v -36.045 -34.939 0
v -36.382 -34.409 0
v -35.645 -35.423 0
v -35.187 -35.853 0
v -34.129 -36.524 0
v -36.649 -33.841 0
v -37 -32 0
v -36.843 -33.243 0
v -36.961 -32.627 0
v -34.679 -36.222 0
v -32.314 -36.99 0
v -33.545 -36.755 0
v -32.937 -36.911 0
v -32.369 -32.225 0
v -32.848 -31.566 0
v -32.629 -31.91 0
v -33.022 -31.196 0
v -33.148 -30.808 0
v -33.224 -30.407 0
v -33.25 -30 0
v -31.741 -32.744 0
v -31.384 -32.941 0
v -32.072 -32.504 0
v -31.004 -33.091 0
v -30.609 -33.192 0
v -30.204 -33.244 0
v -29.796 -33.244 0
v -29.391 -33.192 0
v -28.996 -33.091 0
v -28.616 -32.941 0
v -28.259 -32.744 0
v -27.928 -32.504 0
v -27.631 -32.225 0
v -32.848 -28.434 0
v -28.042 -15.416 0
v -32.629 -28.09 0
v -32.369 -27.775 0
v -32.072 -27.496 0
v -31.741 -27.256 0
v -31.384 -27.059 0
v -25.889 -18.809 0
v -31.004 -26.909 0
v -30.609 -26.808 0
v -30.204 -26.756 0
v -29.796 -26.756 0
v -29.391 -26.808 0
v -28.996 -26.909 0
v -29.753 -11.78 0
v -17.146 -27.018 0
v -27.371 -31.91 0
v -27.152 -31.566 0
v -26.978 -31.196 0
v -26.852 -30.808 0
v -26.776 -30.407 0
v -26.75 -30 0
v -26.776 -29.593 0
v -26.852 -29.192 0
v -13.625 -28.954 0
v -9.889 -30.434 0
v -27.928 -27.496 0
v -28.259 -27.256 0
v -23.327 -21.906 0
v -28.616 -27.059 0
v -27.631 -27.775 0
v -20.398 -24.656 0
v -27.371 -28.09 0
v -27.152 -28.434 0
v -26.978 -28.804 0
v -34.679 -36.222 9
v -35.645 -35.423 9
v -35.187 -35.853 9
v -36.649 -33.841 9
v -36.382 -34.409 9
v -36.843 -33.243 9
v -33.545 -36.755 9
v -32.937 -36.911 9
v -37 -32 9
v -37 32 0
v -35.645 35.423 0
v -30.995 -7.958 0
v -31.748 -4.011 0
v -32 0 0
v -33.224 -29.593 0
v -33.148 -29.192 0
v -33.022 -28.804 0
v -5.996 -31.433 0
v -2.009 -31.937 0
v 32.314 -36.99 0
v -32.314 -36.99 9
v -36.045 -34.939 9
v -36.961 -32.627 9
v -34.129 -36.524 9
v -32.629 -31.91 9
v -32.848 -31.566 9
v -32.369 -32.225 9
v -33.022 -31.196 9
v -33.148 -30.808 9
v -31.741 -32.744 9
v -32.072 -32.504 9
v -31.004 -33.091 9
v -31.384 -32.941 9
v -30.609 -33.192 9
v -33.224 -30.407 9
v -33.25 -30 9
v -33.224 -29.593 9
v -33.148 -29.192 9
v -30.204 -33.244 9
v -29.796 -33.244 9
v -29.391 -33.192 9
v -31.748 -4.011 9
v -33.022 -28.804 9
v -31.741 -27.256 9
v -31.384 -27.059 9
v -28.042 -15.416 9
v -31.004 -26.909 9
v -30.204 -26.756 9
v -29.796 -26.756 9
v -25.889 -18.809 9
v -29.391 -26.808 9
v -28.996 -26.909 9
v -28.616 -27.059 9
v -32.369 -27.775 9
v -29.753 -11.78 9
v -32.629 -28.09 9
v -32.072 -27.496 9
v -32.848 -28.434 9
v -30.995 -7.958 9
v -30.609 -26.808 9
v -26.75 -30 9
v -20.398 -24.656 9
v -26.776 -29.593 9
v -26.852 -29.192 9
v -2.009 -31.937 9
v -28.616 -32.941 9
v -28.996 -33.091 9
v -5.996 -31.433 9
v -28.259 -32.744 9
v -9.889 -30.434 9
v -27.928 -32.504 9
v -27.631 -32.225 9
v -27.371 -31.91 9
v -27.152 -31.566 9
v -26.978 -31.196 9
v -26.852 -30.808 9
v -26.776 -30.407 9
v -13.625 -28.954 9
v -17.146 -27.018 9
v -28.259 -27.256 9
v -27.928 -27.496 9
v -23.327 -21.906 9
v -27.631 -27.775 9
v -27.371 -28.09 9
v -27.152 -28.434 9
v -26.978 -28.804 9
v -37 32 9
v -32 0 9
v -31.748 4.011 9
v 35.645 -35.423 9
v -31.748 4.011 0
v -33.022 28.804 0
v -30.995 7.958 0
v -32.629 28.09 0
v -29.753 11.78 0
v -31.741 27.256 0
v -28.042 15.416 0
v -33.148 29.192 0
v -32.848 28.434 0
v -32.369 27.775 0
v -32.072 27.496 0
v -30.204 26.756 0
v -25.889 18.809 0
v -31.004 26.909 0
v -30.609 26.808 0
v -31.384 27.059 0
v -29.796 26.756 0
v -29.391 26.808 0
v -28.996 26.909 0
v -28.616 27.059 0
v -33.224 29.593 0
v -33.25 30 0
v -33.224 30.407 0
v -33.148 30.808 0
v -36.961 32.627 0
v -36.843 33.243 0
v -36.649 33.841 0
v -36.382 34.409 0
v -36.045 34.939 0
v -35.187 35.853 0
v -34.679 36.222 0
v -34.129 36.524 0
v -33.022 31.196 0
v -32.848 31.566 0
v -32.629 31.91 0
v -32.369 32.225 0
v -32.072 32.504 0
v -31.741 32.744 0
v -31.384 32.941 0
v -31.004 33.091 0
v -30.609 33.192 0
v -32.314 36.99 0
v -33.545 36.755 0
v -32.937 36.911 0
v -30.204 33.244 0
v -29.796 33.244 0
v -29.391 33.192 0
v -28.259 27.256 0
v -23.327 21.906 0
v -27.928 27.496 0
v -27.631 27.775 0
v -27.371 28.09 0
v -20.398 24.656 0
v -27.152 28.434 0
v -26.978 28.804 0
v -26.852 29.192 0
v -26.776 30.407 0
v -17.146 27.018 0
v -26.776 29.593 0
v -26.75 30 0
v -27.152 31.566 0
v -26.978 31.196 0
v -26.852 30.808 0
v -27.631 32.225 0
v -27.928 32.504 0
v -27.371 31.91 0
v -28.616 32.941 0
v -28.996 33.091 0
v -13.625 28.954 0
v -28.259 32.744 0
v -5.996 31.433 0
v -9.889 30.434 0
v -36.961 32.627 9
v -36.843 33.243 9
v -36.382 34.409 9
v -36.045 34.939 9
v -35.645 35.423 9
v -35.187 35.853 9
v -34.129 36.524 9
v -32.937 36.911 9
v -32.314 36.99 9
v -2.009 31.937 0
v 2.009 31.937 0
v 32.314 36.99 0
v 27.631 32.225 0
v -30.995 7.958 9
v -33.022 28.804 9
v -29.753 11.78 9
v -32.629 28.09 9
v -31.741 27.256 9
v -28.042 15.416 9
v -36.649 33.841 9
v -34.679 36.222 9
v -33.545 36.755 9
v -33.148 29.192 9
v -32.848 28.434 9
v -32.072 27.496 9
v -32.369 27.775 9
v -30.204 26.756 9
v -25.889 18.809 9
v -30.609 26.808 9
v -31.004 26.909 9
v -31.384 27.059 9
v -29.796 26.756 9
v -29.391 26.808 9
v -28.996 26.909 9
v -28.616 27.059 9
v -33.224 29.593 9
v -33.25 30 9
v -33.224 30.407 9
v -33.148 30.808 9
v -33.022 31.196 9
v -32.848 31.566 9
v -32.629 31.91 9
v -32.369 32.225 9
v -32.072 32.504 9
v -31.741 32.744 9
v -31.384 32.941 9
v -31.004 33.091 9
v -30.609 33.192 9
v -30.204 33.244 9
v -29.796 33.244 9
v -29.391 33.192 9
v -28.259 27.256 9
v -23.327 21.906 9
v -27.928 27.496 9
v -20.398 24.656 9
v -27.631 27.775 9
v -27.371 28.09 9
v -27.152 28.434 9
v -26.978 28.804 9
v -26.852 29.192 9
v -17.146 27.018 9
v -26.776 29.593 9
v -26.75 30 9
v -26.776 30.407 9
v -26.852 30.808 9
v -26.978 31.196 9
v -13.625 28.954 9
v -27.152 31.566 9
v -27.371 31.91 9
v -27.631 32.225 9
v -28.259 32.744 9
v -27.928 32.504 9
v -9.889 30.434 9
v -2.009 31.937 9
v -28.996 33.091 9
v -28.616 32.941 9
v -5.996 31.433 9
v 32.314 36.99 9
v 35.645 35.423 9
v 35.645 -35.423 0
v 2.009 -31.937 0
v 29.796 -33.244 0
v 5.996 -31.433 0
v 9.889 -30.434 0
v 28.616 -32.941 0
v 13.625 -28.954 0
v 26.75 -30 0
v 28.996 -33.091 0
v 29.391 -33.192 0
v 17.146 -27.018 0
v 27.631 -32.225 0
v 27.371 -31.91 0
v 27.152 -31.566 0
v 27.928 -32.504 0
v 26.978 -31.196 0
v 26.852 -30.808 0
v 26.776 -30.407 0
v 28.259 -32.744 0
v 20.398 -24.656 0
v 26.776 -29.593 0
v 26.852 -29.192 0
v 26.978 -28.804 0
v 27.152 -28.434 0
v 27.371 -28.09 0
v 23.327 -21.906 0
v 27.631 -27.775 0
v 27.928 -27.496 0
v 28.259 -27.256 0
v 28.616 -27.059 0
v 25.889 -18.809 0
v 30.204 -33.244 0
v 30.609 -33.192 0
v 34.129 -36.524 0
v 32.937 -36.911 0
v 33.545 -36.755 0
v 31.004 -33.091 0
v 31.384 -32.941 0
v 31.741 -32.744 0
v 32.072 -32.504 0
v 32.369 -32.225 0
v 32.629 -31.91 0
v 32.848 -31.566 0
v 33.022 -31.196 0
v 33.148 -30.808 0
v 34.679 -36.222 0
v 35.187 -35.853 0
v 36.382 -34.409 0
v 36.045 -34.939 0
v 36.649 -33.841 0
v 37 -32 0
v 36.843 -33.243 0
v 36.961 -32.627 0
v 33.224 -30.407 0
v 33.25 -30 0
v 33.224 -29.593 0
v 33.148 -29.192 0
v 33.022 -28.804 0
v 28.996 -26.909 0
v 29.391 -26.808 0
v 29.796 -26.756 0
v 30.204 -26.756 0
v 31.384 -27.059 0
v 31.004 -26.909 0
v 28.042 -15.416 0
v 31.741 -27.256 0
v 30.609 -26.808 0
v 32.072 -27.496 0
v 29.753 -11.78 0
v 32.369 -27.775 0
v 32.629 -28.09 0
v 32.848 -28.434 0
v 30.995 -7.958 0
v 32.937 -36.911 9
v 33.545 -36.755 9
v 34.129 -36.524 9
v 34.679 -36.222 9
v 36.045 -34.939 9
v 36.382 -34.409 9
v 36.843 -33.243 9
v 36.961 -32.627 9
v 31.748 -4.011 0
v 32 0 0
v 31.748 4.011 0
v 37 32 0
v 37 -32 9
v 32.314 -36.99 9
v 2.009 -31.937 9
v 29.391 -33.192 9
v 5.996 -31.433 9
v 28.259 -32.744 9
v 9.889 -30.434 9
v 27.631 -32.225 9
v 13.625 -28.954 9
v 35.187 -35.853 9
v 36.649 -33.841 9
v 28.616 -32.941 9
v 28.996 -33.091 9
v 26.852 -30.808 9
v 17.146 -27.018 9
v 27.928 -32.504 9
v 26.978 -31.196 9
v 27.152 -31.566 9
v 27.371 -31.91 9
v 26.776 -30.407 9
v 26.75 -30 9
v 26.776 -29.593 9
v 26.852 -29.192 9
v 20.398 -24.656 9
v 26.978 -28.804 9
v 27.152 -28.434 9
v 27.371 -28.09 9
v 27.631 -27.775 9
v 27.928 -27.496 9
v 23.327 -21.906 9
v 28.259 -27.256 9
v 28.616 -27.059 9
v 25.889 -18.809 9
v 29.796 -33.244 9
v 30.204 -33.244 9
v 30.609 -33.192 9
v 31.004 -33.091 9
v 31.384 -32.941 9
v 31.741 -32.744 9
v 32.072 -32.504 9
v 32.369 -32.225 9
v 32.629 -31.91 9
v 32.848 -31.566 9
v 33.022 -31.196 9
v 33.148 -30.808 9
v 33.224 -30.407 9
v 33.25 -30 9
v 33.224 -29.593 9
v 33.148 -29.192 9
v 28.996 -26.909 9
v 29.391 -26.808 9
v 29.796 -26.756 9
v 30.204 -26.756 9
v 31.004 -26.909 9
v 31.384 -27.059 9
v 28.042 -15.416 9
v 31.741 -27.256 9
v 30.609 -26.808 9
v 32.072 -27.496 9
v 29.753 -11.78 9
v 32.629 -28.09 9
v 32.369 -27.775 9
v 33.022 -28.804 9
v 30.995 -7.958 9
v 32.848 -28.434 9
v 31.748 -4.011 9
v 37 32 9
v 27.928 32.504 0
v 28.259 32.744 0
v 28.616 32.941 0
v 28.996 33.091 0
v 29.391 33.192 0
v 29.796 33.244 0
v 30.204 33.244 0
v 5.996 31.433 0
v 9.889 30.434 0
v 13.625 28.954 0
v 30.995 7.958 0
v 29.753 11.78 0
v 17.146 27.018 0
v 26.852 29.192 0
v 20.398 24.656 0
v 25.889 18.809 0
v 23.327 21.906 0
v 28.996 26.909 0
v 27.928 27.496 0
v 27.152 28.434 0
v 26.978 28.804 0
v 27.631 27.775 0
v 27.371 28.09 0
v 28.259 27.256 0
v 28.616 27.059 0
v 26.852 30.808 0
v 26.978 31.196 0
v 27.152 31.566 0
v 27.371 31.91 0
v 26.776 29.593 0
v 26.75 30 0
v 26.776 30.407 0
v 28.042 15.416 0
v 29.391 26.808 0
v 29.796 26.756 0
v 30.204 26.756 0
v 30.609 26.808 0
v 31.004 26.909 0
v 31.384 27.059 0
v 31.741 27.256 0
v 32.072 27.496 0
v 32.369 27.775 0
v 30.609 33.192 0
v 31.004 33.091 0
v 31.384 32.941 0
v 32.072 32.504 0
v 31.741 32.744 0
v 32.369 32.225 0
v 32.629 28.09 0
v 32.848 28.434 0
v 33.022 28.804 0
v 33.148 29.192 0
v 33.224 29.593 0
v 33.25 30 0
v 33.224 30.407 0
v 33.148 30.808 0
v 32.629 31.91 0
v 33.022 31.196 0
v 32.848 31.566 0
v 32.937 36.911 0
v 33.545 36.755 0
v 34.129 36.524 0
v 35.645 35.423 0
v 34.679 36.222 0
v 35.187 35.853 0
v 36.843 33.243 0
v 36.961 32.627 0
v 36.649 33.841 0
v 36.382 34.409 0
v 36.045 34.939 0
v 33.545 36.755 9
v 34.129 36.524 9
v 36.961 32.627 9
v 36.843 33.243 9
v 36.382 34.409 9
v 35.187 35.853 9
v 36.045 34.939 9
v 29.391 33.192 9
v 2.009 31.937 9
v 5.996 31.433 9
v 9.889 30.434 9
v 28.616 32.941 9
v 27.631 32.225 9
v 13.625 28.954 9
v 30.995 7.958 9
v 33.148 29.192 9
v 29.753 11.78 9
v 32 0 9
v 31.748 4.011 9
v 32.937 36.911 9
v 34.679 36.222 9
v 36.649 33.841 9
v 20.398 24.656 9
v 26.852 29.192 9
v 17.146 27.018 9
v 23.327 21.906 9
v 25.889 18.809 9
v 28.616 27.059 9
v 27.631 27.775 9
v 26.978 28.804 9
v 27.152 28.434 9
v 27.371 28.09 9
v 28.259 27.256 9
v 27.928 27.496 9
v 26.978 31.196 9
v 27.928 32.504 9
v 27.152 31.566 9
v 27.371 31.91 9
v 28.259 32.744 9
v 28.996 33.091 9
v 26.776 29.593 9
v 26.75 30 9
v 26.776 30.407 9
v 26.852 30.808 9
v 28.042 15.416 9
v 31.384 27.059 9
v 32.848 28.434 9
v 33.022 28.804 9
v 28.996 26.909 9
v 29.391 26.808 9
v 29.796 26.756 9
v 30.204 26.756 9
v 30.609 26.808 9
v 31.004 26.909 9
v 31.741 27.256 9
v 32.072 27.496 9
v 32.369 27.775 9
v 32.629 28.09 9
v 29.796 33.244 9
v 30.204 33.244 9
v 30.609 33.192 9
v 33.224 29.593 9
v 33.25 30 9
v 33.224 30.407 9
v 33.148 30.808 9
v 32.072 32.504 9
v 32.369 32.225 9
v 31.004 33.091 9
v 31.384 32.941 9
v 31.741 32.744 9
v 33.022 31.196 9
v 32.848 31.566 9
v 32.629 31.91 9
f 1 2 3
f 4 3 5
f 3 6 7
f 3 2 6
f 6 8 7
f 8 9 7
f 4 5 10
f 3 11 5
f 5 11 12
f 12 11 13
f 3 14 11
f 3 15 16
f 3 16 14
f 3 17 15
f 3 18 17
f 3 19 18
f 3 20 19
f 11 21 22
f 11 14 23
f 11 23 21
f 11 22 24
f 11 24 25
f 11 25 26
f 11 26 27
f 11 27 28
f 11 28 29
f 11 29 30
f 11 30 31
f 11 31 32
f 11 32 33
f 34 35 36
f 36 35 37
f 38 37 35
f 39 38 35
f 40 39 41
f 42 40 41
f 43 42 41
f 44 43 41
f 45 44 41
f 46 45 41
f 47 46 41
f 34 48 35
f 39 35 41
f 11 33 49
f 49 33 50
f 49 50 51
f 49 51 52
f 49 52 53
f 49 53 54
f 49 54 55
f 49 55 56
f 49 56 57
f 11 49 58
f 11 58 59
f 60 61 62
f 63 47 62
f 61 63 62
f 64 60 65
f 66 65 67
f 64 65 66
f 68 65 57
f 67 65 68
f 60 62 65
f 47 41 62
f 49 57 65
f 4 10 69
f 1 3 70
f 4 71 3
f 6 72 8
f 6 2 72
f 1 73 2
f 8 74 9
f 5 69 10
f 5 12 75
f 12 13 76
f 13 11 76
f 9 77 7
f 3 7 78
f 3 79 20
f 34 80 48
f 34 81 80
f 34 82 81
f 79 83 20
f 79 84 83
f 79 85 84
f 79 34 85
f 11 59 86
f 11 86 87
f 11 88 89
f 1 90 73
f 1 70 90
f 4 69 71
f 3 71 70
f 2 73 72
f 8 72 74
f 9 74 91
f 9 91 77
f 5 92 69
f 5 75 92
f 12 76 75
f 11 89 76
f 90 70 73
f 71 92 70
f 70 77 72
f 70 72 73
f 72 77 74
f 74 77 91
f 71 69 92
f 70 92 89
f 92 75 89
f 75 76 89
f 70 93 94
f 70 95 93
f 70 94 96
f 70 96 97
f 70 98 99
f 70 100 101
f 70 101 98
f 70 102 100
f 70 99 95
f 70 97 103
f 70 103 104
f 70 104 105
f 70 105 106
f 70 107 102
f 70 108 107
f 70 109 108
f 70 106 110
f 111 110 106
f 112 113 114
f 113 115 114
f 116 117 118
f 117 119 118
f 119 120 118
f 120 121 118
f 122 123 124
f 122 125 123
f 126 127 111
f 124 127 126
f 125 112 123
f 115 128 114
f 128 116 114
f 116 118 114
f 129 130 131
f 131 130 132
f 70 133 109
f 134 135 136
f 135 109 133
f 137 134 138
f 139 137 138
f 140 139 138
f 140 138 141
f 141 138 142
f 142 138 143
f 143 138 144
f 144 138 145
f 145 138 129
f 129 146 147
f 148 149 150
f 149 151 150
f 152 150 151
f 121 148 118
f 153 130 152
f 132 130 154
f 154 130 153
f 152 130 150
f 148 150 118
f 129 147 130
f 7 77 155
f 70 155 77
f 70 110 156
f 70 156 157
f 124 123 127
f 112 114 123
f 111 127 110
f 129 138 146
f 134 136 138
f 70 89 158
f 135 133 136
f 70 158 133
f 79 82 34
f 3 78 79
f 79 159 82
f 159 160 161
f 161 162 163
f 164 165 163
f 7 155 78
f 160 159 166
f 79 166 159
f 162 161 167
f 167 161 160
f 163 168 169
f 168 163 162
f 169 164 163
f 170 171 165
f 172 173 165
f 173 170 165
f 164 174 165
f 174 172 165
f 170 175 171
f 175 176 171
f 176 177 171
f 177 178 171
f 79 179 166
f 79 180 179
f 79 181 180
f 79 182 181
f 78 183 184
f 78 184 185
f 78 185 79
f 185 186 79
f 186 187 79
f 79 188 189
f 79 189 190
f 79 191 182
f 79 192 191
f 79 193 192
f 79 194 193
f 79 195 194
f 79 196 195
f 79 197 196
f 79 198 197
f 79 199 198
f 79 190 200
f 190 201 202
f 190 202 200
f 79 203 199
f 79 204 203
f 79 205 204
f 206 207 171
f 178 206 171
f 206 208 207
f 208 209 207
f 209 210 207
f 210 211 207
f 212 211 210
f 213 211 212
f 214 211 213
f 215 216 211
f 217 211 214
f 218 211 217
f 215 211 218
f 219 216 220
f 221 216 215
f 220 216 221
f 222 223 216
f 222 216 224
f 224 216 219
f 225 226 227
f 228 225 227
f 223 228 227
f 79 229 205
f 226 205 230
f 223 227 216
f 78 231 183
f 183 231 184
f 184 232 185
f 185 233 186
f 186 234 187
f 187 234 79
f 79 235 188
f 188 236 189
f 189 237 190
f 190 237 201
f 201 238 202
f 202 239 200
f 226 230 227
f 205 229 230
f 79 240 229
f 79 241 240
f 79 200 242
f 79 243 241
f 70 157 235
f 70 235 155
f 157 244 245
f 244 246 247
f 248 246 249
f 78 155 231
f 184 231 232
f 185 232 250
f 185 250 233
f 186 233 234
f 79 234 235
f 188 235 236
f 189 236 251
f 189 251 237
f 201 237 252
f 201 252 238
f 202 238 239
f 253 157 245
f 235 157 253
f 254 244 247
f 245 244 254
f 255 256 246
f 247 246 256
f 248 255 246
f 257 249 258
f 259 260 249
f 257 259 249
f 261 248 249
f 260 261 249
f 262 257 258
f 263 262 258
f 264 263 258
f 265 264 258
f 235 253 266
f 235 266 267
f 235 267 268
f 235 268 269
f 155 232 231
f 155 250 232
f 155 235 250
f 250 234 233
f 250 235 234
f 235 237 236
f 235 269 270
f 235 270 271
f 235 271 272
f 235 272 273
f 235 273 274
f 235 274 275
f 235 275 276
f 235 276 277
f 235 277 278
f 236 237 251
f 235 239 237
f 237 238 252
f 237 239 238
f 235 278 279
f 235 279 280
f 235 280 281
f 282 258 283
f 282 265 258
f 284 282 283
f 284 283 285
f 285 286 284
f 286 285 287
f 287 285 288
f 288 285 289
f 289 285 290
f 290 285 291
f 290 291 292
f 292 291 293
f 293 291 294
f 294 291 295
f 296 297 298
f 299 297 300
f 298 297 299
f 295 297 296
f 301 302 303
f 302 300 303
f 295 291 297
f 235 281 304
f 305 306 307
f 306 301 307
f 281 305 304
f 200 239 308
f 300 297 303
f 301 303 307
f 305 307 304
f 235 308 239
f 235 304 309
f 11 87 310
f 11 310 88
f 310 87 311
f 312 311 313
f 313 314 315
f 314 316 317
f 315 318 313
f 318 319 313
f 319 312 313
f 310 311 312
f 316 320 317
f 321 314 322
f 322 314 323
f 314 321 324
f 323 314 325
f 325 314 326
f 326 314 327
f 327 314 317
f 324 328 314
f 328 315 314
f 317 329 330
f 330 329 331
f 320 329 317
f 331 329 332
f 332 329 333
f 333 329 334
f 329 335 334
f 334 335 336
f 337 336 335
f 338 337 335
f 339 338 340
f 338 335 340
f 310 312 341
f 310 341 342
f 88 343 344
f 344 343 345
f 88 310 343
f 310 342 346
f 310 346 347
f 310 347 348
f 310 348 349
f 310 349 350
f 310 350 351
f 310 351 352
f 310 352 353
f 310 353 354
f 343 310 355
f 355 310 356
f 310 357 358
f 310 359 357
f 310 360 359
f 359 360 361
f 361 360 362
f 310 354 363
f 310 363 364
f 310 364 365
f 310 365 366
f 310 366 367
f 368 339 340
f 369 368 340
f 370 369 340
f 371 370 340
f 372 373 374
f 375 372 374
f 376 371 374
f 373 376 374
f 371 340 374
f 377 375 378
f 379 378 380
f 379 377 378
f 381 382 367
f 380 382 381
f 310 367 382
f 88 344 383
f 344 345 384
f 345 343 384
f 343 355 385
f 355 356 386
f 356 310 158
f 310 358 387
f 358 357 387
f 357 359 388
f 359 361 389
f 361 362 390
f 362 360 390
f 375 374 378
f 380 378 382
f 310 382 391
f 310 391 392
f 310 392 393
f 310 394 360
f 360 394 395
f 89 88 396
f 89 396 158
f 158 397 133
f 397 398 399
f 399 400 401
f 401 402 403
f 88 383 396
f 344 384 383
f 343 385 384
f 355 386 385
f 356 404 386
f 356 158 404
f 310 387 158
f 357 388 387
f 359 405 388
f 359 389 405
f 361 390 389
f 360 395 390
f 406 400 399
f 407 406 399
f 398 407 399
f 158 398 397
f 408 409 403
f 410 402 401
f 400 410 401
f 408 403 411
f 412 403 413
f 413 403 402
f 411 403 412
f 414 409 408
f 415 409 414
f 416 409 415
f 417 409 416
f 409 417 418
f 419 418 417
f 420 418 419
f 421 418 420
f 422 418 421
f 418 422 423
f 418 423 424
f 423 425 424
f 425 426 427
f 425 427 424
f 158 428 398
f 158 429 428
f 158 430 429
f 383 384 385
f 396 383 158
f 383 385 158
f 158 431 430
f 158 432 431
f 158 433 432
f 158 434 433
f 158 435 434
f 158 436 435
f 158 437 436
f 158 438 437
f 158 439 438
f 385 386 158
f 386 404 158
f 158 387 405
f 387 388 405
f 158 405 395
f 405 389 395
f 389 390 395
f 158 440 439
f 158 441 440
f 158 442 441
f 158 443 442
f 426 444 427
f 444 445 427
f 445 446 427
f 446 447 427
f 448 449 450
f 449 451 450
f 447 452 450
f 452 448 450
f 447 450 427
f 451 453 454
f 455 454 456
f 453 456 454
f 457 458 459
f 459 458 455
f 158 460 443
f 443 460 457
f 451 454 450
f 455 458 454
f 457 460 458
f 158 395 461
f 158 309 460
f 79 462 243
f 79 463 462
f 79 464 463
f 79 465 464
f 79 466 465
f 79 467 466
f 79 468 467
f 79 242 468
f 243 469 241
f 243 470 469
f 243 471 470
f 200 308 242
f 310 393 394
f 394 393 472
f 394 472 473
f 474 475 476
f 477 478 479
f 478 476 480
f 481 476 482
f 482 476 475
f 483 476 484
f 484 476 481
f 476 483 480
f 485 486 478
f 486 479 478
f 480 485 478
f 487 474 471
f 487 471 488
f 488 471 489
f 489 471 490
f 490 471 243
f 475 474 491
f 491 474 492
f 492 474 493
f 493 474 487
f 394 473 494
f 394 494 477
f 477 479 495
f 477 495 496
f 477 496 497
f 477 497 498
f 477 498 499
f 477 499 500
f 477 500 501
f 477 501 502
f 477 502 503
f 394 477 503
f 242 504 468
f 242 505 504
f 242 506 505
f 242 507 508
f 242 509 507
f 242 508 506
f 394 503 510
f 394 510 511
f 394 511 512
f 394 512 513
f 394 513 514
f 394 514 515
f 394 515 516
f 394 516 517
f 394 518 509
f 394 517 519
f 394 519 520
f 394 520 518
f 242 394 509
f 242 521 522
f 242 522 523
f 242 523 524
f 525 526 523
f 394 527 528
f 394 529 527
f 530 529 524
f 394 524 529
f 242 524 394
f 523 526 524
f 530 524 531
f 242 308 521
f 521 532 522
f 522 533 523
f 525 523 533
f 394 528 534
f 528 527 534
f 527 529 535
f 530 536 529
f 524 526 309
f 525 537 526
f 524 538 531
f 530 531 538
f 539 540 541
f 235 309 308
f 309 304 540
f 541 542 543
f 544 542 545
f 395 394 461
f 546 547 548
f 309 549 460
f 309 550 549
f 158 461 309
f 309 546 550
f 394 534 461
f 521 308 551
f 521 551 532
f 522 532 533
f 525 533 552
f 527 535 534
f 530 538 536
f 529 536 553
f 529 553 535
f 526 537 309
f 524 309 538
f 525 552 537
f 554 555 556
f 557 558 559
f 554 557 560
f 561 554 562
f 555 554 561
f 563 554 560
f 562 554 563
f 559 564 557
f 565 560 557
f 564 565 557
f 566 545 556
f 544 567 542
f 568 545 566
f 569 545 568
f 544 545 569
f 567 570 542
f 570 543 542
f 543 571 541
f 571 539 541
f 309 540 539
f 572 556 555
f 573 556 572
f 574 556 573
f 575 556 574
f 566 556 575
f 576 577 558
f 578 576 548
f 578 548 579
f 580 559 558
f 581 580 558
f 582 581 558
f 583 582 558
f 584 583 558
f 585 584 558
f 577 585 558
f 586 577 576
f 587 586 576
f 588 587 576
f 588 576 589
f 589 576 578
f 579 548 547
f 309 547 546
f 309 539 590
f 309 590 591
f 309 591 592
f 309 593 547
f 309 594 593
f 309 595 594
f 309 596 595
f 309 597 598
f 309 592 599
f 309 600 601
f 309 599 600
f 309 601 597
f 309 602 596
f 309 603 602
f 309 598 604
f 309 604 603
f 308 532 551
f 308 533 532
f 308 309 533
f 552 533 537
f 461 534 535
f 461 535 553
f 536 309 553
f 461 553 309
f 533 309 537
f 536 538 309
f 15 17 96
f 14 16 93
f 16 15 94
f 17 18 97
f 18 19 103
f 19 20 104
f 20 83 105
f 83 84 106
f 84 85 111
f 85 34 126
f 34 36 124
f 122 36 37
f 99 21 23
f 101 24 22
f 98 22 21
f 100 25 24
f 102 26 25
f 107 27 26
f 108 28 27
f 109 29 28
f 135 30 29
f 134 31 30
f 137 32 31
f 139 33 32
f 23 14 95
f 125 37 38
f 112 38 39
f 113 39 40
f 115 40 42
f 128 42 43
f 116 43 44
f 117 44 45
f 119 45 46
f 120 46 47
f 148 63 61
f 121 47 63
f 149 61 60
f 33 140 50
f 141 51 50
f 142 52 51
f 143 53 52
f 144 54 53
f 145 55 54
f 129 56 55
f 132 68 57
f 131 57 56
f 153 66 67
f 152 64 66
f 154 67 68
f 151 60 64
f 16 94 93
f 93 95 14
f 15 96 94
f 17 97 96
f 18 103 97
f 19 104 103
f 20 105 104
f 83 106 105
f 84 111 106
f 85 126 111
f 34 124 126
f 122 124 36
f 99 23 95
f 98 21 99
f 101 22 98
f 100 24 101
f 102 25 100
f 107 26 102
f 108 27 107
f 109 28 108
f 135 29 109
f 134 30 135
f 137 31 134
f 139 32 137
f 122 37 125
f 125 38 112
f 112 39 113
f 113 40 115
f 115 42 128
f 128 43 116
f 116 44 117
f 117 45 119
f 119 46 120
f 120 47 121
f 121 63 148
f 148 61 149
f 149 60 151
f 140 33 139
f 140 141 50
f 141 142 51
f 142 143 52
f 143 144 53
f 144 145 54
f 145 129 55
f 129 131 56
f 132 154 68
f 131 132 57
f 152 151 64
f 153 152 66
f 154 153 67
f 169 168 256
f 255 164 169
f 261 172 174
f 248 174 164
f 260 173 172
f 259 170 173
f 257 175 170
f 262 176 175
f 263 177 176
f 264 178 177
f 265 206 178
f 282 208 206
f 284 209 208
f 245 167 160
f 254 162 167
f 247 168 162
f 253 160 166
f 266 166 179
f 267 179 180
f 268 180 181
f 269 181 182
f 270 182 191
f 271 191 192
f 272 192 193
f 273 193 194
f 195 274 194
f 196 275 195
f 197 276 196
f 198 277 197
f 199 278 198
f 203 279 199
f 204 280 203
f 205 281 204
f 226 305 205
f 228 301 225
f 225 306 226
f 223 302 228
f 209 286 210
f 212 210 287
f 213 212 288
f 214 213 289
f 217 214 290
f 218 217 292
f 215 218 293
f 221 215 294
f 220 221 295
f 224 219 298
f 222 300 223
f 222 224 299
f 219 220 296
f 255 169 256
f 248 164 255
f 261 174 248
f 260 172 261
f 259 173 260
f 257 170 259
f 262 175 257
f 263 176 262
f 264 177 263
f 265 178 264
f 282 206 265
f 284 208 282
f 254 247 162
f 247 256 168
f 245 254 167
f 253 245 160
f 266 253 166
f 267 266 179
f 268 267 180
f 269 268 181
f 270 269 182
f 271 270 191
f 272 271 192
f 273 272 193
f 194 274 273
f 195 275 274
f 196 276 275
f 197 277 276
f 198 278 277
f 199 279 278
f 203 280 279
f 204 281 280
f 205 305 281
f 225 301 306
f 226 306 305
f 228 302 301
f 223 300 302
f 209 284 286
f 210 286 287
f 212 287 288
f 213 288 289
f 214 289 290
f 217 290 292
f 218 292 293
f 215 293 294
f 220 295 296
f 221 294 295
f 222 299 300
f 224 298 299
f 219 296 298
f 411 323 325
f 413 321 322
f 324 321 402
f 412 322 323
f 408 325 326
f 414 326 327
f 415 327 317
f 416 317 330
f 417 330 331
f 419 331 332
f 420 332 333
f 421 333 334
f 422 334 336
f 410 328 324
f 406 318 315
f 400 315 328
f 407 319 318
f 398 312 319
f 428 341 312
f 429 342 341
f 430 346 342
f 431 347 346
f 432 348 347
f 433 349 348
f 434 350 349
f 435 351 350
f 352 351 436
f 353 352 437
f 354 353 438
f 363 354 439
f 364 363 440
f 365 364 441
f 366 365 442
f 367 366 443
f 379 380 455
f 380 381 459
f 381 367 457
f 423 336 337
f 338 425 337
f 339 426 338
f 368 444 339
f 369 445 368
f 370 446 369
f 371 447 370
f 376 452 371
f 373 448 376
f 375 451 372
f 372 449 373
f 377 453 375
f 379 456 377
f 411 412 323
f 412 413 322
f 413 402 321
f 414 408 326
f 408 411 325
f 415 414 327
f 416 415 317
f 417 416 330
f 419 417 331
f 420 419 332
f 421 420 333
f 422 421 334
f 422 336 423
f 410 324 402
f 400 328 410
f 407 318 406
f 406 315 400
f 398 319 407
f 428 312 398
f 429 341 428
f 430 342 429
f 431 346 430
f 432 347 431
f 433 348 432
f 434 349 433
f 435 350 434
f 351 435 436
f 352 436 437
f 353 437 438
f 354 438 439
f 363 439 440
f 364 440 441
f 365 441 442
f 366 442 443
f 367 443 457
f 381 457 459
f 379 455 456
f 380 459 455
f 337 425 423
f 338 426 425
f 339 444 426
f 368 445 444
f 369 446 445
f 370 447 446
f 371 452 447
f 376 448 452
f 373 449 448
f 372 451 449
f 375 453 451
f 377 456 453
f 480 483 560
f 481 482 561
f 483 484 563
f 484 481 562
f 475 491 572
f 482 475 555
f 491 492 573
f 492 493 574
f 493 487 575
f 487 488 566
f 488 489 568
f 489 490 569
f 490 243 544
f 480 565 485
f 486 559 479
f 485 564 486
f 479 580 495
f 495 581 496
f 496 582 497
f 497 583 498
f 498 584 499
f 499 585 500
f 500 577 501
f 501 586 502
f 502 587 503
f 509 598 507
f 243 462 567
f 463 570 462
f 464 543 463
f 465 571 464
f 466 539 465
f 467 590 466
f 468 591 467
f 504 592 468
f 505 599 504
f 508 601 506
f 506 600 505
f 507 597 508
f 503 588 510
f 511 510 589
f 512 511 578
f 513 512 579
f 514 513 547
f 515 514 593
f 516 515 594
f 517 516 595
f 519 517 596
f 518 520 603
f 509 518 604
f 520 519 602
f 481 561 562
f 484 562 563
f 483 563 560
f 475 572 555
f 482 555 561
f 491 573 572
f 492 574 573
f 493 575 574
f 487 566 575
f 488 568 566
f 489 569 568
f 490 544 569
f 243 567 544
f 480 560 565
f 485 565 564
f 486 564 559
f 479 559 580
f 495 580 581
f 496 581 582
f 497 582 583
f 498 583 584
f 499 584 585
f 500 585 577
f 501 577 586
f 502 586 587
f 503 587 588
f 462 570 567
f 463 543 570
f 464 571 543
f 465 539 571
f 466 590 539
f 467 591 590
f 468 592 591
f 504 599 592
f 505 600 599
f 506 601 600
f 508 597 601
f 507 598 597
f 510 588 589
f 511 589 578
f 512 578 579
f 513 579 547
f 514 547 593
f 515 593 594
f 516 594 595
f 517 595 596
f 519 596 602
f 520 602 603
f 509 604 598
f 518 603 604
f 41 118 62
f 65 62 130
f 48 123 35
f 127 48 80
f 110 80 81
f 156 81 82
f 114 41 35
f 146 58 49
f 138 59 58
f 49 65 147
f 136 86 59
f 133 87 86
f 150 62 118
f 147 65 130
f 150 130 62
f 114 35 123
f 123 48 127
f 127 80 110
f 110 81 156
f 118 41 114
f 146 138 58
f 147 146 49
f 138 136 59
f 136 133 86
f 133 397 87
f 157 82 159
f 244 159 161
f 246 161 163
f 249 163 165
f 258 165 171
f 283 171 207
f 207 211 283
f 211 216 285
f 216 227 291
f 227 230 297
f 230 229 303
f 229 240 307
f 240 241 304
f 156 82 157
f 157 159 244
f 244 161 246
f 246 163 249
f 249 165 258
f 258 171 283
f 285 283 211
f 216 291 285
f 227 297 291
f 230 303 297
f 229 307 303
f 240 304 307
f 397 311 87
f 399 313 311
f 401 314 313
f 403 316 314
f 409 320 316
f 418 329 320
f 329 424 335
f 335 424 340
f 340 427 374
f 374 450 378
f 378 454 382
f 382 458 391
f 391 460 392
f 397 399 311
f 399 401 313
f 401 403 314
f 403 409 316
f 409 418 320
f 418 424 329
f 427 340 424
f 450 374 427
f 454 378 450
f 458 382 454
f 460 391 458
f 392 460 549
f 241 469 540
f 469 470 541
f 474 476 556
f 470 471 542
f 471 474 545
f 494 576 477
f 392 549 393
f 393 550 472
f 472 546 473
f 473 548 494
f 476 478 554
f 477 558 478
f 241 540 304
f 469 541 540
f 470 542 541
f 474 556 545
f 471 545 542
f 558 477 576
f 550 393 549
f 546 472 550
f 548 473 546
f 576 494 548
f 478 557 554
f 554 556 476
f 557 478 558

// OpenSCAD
$fn = 50;

difference() {
	union() {
		hull() {
			translate(v = [-32.0, 32.0, 0]) {
				cylinder(h = 9, r = 5);
			}
			translate(v = [32.0, 32.0, 0]) {
				cylinder(h = 9, r = 5);
			}
			translate(v = [-32.0, -32.0, 0]) {
				cylinder(h = 9, r = 5);
			}
			translate(v = [32.0, -32.0, 0]) {
				cylinder(h = 9, r = 5);
			}
		}
	}
	union() {
		translate(v = [-30.0, -30.0, -100.0]) {
			cylinder(h = 200, r = 3.25);
		}
		translate(v = [-30.0, 30.0, -100.0]) {
			cylinder(h = 200, r = 3.25);
		}
		translate(v = [30.0, -30.0, -100.0]) {
			cylinder(h = 200, r = 3.25);
		}
		translate(v = [30.0, 30.0, -100.0]) {
			cylinder(h = 200, r = 3.25);
		}
		translate(v = [-30.0, -30.0, -100.0]) {
			cylinder(h = 200, r = 1.8);
		}
		translate(v = [-30.0, 30.0, -100.0]) {
			cylinder(h = 200, r = 1.8);
		}
		translate(v = [30.0, -30.0, -100.0]) {
			cylinder(h = 200, r = 1.8);
		}
		translate(v = [30.0, 30.0, -100.0]) {
			cylinder(h = 200, r = 1.8);
		}
		cylinder(h = 9, r = 32.0);
	}
}
